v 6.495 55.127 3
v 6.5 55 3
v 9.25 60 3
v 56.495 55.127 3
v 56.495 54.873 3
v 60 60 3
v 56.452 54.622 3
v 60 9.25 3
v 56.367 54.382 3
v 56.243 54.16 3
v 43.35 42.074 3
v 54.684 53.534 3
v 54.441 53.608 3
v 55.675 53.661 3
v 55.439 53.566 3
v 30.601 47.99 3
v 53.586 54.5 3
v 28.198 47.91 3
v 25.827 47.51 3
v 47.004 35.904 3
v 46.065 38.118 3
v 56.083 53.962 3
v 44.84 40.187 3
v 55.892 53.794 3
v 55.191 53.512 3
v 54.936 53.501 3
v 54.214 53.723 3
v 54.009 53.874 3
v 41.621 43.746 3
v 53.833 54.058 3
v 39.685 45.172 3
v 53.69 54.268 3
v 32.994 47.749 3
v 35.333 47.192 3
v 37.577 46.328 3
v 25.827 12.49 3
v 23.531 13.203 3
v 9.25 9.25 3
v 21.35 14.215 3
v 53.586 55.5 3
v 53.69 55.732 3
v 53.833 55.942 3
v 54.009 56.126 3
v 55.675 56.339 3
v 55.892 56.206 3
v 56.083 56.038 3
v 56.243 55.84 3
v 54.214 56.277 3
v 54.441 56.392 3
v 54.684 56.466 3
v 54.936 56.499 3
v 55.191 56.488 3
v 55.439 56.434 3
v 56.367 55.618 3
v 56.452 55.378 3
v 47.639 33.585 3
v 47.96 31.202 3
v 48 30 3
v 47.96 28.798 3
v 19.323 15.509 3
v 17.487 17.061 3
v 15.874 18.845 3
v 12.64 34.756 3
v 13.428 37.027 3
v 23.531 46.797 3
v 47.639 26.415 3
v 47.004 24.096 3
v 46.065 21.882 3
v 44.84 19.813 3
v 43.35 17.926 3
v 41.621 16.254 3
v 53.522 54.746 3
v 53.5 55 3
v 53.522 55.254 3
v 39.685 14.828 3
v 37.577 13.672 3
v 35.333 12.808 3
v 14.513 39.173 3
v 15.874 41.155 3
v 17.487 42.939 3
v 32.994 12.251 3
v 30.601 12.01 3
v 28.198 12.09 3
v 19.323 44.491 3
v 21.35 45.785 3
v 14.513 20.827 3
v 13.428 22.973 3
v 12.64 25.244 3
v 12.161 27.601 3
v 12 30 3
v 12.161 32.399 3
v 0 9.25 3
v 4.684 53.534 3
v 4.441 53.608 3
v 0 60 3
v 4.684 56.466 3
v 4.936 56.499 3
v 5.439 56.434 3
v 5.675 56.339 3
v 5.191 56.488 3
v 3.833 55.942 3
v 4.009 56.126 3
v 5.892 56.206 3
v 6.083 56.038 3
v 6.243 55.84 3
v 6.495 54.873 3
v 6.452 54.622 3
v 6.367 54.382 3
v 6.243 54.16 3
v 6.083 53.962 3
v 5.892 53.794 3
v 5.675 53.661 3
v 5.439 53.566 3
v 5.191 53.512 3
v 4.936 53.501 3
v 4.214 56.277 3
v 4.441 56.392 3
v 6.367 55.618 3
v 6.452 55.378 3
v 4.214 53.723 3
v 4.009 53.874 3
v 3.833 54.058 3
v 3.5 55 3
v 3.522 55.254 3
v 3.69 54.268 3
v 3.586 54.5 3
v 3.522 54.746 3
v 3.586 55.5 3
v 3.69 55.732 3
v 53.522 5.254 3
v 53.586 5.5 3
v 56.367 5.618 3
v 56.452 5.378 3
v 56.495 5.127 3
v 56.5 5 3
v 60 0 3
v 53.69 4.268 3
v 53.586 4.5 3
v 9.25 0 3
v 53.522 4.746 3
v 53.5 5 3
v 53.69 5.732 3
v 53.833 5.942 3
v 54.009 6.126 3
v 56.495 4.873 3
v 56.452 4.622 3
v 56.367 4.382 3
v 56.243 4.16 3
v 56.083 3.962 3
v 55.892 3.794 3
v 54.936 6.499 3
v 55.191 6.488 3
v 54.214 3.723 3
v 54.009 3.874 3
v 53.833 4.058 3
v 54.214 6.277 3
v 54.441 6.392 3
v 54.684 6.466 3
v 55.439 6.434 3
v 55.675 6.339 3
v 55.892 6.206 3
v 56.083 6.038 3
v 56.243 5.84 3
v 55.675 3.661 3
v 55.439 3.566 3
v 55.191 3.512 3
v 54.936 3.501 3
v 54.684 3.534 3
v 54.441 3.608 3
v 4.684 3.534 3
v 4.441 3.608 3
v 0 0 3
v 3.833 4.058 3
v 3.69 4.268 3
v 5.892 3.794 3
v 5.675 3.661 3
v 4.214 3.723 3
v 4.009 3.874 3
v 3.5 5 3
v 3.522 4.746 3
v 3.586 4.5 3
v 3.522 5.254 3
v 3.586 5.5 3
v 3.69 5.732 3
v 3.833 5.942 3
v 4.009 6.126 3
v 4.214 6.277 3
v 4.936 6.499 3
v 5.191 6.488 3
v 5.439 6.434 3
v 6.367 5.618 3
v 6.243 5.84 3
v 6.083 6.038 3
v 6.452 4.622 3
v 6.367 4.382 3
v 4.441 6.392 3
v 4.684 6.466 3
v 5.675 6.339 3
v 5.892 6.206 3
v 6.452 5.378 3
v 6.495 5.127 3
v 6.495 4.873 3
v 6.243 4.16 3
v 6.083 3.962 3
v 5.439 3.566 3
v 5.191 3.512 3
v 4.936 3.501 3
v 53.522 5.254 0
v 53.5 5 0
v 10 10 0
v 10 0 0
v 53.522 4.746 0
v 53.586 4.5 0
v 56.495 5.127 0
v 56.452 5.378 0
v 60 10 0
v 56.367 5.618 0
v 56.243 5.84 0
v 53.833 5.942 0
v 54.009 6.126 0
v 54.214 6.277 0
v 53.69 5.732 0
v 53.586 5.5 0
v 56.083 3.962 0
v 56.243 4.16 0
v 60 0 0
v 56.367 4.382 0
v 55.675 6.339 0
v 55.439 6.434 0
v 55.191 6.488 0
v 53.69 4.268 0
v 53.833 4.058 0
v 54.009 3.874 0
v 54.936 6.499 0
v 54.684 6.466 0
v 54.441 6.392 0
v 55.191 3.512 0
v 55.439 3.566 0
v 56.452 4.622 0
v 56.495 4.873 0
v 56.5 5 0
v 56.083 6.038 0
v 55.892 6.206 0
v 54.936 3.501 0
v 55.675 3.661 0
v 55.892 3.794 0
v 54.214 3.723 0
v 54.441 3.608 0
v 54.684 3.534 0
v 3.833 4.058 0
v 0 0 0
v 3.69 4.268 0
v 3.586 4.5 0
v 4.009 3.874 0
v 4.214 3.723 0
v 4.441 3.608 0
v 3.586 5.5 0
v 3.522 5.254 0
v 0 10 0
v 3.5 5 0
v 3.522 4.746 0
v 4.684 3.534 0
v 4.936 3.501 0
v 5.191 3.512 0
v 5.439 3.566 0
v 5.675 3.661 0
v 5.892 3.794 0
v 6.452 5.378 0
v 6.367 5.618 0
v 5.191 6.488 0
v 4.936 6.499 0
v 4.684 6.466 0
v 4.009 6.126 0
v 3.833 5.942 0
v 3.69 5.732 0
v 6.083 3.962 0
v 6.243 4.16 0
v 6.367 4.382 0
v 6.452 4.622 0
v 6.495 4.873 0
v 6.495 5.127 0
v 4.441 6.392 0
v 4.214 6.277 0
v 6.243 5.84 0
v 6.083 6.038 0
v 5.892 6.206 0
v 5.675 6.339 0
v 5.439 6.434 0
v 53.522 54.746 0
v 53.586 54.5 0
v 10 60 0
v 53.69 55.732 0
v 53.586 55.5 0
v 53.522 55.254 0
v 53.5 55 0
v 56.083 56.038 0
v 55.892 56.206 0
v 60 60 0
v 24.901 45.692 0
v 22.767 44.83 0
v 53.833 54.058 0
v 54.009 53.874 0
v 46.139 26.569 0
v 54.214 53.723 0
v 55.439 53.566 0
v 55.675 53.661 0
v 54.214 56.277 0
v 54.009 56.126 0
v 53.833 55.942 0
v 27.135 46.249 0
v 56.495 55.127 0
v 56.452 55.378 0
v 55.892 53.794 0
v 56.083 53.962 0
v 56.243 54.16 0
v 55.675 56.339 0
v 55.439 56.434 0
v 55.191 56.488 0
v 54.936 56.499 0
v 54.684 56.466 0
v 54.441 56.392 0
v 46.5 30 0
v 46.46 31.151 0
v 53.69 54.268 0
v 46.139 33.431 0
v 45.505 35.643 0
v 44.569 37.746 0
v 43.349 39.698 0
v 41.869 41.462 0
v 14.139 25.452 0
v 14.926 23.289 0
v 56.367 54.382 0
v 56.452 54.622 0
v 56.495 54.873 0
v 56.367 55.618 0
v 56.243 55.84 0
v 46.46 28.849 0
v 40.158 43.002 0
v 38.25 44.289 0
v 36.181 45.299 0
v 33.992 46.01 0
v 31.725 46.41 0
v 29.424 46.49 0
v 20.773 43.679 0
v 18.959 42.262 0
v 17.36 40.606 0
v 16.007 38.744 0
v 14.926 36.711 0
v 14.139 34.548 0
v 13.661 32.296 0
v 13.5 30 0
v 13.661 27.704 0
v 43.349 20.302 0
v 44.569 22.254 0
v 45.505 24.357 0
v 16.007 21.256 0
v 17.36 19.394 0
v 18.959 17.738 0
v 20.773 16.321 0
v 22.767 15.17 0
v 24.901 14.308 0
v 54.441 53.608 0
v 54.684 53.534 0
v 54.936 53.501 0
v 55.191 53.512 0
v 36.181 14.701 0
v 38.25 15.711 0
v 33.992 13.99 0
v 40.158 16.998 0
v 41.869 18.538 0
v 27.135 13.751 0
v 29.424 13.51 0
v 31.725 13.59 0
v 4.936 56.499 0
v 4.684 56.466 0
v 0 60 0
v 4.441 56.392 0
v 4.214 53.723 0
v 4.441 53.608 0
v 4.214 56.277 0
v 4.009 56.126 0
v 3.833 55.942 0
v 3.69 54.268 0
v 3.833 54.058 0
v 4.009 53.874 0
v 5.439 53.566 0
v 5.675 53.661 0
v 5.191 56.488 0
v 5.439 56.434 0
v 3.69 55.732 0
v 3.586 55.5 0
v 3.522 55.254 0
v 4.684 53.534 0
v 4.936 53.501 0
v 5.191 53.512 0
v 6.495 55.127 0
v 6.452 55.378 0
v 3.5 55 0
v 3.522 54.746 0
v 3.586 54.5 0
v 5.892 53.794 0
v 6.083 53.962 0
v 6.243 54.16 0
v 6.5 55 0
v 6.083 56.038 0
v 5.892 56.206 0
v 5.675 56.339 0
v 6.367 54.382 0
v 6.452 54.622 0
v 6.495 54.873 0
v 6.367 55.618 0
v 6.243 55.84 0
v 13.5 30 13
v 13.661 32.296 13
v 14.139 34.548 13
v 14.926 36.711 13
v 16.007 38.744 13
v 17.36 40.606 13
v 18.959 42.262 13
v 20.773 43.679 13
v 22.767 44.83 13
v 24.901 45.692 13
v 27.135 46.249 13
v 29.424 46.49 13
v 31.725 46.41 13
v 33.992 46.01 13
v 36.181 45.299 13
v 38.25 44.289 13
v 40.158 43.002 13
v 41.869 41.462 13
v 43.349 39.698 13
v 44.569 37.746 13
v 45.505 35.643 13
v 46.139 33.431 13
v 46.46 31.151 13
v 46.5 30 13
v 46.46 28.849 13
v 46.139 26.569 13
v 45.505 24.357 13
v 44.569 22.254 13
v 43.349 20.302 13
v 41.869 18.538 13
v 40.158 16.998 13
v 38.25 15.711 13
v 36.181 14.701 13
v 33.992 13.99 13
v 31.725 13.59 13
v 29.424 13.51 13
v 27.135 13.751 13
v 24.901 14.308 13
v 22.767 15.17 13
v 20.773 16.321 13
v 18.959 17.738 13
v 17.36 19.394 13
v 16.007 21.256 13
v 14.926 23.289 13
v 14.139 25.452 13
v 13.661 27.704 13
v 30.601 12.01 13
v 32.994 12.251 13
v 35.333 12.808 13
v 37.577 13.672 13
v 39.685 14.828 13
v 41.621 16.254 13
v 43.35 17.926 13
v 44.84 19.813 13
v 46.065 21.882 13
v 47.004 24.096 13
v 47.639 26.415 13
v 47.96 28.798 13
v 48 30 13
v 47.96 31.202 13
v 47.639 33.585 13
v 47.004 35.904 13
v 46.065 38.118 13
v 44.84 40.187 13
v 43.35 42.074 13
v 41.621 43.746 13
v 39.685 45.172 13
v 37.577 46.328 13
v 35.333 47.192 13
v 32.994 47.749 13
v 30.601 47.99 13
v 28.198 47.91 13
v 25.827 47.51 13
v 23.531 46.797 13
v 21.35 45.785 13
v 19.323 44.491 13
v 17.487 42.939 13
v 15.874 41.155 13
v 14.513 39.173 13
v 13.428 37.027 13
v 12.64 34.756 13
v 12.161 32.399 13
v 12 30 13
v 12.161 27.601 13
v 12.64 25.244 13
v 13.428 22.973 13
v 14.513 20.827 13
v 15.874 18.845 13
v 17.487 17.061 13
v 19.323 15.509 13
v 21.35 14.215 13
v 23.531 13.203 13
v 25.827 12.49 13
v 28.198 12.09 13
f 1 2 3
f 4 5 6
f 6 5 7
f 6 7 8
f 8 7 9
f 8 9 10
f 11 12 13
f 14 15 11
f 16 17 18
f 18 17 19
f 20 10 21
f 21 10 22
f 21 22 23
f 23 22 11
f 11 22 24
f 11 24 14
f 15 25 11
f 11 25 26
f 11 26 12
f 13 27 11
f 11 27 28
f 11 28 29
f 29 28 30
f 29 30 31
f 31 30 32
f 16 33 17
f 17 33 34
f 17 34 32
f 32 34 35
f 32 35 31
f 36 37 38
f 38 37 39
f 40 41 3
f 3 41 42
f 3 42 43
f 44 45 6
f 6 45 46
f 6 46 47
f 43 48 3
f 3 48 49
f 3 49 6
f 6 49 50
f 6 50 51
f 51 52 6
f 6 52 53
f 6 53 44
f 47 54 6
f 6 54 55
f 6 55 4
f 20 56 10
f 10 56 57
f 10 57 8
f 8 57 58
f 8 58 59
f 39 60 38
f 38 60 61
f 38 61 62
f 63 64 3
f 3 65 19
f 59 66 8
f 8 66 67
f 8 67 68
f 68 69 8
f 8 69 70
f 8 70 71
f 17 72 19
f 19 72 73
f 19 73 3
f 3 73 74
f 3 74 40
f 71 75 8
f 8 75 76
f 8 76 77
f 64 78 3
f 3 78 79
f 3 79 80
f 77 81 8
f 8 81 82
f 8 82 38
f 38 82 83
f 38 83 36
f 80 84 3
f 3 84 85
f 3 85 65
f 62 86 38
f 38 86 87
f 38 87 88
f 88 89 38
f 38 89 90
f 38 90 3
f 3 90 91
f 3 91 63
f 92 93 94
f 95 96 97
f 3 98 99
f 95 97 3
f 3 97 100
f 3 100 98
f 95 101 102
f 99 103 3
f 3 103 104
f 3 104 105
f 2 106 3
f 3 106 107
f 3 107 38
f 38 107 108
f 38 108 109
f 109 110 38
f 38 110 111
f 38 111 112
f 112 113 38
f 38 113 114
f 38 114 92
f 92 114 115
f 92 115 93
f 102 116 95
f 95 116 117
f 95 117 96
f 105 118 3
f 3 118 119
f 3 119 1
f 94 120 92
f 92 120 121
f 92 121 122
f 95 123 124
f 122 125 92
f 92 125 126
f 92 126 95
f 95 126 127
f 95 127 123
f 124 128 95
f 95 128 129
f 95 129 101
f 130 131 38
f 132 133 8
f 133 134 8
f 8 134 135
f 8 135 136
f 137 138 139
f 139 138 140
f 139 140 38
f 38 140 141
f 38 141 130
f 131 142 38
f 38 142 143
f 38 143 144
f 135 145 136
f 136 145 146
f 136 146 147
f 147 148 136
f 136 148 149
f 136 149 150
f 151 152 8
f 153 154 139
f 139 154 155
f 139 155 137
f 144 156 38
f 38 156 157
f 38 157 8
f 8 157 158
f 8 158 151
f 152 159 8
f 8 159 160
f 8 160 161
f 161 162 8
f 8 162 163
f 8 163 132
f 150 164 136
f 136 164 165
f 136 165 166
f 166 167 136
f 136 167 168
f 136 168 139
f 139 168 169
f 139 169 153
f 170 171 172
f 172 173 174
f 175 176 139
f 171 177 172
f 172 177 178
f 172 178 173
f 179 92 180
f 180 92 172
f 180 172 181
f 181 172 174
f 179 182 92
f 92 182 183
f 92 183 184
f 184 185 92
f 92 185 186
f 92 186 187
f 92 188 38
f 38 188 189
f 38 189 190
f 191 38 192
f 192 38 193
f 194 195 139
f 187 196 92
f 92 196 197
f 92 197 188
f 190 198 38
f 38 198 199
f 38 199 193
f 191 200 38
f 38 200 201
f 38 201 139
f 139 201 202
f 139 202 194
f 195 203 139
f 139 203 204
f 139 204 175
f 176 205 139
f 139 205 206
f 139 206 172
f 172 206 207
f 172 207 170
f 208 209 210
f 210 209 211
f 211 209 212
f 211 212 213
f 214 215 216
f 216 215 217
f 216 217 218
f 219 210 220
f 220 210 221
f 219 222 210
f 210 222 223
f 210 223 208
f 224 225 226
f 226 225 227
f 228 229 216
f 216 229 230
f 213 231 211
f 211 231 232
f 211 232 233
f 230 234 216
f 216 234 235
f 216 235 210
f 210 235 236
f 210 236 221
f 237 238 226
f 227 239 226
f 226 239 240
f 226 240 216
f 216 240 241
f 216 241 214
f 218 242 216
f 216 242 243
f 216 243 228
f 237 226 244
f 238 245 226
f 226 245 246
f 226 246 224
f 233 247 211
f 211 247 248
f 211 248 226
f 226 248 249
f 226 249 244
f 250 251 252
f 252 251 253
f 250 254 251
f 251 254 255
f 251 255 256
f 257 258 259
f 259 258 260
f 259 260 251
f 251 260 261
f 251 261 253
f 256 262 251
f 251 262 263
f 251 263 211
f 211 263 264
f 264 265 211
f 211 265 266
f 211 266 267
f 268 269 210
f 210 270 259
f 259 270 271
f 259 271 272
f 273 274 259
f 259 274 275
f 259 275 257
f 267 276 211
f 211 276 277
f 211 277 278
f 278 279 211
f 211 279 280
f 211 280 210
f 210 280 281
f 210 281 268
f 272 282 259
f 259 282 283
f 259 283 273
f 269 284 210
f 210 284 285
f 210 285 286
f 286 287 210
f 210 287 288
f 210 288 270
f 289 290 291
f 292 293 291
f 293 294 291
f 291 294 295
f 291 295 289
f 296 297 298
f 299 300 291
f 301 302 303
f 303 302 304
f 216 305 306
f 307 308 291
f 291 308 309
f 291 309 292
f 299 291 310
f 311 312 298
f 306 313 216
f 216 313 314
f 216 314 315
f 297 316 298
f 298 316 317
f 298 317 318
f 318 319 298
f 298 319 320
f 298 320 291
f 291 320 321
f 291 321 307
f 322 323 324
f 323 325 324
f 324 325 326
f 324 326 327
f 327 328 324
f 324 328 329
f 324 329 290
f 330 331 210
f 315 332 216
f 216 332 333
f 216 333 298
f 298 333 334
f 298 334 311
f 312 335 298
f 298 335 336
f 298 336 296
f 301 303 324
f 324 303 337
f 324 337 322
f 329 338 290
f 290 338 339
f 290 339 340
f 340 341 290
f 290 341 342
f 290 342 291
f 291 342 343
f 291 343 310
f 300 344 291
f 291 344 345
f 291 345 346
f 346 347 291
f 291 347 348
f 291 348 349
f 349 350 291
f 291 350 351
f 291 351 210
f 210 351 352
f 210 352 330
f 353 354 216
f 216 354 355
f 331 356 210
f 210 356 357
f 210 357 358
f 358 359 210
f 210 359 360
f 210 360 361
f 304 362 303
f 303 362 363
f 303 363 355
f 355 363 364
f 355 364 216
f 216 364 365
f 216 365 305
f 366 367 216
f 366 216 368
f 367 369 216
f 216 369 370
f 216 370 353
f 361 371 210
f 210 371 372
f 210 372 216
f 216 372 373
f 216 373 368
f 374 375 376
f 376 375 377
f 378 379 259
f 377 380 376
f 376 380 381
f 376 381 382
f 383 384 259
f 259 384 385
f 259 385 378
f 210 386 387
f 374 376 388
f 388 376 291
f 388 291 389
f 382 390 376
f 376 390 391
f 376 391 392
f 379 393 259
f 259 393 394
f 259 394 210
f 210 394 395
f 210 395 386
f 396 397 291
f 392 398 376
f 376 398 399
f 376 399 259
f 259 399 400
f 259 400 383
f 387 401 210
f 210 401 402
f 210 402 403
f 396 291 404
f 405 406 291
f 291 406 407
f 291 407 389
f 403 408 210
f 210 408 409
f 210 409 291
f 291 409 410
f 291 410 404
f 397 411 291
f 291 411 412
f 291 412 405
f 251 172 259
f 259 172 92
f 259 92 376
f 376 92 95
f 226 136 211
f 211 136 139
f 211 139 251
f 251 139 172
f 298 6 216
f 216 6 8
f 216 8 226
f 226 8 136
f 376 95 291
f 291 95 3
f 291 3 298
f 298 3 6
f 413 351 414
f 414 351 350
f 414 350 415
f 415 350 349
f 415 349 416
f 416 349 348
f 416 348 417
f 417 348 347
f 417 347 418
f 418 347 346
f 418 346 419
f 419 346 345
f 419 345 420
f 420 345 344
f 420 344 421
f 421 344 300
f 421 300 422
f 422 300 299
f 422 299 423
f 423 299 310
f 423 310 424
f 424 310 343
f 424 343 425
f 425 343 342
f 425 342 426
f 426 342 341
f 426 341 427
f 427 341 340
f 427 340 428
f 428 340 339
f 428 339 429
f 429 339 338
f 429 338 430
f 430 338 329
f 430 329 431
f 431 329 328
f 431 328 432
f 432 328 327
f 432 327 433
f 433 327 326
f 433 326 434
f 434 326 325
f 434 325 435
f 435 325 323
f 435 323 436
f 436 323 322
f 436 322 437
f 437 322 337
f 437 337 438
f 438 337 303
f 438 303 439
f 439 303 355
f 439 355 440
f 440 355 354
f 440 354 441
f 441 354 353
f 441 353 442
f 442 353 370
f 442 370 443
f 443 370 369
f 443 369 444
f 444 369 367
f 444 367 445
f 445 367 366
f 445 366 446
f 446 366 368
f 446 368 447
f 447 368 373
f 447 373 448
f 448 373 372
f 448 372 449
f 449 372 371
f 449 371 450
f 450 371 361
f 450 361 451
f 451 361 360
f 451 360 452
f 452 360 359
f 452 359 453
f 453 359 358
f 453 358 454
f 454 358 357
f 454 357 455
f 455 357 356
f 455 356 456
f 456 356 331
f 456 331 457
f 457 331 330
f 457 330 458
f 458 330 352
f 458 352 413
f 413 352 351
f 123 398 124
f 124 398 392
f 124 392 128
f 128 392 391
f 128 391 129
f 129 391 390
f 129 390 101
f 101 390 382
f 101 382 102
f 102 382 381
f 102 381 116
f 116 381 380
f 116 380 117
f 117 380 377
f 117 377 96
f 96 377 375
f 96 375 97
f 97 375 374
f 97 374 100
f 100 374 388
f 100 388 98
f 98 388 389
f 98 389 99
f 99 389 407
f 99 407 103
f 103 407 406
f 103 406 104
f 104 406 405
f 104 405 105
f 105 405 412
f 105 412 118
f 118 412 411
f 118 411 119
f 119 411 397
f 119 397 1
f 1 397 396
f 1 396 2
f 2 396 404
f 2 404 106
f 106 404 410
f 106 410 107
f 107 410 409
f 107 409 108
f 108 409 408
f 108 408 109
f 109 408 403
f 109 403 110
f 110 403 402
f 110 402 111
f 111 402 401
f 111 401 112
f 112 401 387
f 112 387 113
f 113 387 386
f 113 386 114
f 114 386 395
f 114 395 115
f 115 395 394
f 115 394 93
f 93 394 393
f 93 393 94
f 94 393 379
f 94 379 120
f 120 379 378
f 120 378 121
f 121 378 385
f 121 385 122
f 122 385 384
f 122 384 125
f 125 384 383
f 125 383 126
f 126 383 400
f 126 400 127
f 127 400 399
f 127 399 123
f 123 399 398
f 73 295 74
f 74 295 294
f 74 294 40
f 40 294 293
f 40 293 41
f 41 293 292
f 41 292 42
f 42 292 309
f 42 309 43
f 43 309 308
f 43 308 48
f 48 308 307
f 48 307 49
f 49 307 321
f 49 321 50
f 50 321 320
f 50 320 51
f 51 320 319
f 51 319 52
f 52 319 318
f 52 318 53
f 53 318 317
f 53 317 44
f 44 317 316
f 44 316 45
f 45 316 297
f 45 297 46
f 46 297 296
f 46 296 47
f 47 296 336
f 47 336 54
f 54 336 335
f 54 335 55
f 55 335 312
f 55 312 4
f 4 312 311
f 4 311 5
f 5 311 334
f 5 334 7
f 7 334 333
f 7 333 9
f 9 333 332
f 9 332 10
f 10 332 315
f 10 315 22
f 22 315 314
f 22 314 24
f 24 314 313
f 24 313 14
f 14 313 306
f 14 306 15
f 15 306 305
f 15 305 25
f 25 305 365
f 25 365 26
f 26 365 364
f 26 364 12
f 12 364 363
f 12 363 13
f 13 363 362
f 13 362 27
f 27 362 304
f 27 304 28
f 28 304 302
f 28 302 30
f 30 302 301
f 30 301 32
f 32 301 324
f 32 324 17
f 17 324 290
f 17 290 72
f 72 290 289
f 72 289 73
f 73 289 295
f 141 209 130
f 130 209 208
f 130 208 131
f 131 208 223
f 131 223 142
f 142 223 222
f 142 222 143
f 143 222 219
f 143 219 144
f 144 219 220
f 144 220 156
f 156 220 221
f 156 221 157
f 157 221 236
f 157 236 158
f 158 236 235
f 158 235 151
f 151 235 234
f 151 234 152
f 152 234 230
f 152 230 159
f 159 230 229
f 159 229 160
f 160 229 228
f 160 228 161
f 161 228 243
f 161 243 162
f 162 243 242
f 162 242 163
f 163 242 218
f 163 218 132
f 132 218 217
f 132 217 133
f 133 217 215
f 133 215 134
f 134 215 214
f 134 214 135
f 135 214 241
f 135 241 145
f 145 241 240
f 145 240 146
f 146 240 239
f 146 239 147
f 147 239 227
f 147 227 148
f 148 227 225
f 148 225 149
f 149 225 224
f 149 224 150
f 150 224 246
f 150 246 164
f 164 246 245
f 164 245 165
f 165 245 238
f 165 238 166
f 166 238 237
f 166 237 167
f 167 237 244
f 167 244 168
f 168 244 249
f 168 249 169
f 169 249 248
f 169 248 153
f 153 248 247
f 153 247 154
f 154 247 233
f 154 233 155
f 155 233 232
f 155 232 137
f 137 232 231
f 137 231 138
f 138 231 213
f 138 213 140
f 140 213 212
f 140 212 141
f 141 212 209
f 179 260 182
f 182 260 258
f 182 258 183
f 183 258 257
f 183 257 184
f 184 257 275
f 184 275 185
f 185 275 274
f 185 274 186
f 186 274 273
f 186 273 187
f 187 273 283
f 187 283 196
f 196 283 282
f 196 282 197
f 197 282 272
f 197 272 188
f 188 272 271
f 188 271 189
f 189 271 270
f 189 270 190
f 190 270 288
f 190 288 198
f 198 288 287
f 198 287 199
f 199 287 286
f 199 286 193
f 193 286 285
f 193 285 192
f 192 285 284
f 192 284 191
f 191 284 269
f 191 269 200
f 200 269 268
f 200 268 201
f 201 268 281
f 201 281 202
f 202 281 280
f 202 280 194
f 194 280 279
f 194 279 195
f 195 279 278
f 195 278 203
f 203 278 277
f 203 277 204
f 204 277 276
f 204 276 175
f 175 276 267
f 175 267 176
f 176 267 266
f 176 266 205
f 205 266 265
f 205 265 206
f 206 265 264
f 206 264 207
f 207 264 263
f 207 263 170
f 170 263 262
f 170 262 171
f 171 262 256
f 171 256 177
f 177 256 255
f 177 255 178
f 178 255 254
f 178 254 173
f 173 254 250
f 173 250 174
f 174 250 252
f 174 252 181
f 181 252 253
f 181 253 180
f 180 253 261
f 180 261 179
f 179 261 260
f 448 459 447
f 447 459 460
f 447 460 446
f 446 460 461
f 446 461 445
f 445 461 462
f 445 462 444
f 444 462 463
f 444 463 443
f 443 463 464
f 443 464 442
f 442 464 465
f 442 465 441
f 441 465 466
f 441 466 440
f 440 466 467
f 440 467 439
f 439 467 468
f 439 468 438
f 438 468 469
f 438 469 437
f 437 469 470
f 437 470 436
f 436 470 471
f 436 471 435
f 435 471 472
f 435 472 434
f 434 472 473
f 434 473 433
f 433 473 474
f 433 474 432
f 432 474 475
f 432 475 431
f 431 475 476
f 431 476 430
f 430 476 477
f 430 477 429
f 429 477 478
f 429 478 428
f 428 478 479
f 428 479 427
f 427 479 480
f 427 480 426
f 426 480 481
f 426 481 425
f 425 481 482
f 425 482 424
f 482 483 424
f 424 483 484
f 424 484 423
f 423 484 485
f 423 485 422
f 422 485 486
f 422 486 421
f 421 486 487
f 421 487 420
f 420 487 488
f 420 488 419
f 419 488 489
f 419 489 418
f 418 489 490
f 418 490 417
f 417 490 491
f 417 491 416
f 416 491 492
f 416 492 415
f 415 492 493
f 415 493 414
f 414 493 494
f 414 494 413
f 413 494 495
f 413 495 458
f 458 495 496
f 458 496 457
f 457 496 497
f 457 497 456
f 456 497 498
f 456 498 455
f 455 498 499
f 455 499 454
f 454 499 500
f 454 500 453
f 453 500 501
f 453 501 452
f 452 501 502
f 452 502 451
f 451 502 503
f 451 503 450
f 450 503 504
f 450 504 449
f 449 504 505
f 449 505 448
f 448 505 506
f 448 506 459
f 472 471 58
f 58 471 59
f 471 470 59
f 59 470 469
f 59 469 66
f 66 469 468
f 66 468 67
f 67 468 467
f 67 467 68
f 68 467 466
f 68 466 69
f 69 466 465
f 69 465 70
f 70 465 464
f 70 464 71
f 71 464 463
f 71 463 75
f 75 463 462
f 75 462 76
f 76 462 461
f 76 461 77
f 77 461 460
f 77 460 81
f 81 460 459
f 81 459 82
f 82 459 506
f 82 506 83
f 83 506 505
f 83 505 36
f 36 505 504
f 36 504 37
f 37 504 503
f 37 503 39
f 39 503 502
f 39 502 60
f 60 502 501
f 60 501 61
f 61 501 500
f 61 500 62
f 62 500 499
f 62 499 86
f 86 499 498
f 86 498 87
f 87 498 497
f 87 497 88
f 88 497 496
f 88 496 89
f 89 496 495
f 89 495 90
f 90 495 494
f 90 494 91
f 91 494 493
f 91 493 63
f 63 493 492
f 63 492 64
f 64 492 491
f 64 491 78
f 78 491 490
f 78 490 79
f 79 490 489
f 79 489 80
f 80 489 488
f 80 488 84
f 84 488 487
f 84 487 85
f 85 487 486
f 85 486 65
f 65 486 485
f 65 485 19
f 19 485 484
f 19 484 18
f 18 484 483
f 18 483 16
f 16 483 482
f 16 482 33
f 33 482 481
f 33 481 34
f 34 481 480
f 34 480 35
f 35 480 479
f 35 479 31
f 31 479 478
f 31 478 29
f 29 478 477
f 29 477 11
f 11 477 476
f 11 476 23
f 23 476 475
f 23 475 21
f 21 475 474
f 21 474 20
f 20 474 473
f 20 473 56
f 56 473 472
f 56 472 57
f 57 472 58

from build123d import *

# Parameters (mm, degrees)
SKETCH1_W           = 60
SKETCH1_H           = 60
SKETCH1_R           = 16.5
SKETCH1_R_2         = 1.5
BOSS_EXTRUDE1_DEPTH = 3
SKETCH2_R           = 18
SKETCH2_R_2         = 16.5
BOSS_EXTRUDE2_DEPTH = 10


with BuildPart() as part:
    # Sketch1 → Boss-Extrude1 (new body)
    with BuildSketch(Plane.XY):
        with Locations((30, 30)):
            Rectangle(SKETCH1_W, SKETCH1_H)
        with Locations((30, 30)):
            Circle(SKETCH1_R, mode=Mode.SUBTRACT)
        with Locations((5, 55)):
            Circle(SKETCH1_R_2, mode=Mode.SUBTRACT)
        with Locations(Location((55, 55, 0), (0, 0, 180))):
            Circle(SKETCH1_R_2, mode=Mode.SUBTRACT)
        with Locations((55, 5)):
            Circle(SKETCH1_R_2, mode=Mode.SUBTRACT)
        with Locations(Location((5, 5, 0), (0, 0, 180))):
            Circle(SKETCH1_R_2, mode=Mode.SUBTRACT)
    extrude(amount=BOSS_EXTRUDE1_DEPTH)

    # Sketch2 → Boss-Extrude2 (add)
    with BuildSketch(Plane.XY.offset(3)):
        with Locations((30, 30)):
            Circle(SKETCH2_R)
        with Locations((30, 30)):
            Circle(SKETCH2_R_2, mode=Mode.SUBTRACT)
    extrude(amount=BOSS_EXTRUDE2_DEPTH)


solid = part.part
